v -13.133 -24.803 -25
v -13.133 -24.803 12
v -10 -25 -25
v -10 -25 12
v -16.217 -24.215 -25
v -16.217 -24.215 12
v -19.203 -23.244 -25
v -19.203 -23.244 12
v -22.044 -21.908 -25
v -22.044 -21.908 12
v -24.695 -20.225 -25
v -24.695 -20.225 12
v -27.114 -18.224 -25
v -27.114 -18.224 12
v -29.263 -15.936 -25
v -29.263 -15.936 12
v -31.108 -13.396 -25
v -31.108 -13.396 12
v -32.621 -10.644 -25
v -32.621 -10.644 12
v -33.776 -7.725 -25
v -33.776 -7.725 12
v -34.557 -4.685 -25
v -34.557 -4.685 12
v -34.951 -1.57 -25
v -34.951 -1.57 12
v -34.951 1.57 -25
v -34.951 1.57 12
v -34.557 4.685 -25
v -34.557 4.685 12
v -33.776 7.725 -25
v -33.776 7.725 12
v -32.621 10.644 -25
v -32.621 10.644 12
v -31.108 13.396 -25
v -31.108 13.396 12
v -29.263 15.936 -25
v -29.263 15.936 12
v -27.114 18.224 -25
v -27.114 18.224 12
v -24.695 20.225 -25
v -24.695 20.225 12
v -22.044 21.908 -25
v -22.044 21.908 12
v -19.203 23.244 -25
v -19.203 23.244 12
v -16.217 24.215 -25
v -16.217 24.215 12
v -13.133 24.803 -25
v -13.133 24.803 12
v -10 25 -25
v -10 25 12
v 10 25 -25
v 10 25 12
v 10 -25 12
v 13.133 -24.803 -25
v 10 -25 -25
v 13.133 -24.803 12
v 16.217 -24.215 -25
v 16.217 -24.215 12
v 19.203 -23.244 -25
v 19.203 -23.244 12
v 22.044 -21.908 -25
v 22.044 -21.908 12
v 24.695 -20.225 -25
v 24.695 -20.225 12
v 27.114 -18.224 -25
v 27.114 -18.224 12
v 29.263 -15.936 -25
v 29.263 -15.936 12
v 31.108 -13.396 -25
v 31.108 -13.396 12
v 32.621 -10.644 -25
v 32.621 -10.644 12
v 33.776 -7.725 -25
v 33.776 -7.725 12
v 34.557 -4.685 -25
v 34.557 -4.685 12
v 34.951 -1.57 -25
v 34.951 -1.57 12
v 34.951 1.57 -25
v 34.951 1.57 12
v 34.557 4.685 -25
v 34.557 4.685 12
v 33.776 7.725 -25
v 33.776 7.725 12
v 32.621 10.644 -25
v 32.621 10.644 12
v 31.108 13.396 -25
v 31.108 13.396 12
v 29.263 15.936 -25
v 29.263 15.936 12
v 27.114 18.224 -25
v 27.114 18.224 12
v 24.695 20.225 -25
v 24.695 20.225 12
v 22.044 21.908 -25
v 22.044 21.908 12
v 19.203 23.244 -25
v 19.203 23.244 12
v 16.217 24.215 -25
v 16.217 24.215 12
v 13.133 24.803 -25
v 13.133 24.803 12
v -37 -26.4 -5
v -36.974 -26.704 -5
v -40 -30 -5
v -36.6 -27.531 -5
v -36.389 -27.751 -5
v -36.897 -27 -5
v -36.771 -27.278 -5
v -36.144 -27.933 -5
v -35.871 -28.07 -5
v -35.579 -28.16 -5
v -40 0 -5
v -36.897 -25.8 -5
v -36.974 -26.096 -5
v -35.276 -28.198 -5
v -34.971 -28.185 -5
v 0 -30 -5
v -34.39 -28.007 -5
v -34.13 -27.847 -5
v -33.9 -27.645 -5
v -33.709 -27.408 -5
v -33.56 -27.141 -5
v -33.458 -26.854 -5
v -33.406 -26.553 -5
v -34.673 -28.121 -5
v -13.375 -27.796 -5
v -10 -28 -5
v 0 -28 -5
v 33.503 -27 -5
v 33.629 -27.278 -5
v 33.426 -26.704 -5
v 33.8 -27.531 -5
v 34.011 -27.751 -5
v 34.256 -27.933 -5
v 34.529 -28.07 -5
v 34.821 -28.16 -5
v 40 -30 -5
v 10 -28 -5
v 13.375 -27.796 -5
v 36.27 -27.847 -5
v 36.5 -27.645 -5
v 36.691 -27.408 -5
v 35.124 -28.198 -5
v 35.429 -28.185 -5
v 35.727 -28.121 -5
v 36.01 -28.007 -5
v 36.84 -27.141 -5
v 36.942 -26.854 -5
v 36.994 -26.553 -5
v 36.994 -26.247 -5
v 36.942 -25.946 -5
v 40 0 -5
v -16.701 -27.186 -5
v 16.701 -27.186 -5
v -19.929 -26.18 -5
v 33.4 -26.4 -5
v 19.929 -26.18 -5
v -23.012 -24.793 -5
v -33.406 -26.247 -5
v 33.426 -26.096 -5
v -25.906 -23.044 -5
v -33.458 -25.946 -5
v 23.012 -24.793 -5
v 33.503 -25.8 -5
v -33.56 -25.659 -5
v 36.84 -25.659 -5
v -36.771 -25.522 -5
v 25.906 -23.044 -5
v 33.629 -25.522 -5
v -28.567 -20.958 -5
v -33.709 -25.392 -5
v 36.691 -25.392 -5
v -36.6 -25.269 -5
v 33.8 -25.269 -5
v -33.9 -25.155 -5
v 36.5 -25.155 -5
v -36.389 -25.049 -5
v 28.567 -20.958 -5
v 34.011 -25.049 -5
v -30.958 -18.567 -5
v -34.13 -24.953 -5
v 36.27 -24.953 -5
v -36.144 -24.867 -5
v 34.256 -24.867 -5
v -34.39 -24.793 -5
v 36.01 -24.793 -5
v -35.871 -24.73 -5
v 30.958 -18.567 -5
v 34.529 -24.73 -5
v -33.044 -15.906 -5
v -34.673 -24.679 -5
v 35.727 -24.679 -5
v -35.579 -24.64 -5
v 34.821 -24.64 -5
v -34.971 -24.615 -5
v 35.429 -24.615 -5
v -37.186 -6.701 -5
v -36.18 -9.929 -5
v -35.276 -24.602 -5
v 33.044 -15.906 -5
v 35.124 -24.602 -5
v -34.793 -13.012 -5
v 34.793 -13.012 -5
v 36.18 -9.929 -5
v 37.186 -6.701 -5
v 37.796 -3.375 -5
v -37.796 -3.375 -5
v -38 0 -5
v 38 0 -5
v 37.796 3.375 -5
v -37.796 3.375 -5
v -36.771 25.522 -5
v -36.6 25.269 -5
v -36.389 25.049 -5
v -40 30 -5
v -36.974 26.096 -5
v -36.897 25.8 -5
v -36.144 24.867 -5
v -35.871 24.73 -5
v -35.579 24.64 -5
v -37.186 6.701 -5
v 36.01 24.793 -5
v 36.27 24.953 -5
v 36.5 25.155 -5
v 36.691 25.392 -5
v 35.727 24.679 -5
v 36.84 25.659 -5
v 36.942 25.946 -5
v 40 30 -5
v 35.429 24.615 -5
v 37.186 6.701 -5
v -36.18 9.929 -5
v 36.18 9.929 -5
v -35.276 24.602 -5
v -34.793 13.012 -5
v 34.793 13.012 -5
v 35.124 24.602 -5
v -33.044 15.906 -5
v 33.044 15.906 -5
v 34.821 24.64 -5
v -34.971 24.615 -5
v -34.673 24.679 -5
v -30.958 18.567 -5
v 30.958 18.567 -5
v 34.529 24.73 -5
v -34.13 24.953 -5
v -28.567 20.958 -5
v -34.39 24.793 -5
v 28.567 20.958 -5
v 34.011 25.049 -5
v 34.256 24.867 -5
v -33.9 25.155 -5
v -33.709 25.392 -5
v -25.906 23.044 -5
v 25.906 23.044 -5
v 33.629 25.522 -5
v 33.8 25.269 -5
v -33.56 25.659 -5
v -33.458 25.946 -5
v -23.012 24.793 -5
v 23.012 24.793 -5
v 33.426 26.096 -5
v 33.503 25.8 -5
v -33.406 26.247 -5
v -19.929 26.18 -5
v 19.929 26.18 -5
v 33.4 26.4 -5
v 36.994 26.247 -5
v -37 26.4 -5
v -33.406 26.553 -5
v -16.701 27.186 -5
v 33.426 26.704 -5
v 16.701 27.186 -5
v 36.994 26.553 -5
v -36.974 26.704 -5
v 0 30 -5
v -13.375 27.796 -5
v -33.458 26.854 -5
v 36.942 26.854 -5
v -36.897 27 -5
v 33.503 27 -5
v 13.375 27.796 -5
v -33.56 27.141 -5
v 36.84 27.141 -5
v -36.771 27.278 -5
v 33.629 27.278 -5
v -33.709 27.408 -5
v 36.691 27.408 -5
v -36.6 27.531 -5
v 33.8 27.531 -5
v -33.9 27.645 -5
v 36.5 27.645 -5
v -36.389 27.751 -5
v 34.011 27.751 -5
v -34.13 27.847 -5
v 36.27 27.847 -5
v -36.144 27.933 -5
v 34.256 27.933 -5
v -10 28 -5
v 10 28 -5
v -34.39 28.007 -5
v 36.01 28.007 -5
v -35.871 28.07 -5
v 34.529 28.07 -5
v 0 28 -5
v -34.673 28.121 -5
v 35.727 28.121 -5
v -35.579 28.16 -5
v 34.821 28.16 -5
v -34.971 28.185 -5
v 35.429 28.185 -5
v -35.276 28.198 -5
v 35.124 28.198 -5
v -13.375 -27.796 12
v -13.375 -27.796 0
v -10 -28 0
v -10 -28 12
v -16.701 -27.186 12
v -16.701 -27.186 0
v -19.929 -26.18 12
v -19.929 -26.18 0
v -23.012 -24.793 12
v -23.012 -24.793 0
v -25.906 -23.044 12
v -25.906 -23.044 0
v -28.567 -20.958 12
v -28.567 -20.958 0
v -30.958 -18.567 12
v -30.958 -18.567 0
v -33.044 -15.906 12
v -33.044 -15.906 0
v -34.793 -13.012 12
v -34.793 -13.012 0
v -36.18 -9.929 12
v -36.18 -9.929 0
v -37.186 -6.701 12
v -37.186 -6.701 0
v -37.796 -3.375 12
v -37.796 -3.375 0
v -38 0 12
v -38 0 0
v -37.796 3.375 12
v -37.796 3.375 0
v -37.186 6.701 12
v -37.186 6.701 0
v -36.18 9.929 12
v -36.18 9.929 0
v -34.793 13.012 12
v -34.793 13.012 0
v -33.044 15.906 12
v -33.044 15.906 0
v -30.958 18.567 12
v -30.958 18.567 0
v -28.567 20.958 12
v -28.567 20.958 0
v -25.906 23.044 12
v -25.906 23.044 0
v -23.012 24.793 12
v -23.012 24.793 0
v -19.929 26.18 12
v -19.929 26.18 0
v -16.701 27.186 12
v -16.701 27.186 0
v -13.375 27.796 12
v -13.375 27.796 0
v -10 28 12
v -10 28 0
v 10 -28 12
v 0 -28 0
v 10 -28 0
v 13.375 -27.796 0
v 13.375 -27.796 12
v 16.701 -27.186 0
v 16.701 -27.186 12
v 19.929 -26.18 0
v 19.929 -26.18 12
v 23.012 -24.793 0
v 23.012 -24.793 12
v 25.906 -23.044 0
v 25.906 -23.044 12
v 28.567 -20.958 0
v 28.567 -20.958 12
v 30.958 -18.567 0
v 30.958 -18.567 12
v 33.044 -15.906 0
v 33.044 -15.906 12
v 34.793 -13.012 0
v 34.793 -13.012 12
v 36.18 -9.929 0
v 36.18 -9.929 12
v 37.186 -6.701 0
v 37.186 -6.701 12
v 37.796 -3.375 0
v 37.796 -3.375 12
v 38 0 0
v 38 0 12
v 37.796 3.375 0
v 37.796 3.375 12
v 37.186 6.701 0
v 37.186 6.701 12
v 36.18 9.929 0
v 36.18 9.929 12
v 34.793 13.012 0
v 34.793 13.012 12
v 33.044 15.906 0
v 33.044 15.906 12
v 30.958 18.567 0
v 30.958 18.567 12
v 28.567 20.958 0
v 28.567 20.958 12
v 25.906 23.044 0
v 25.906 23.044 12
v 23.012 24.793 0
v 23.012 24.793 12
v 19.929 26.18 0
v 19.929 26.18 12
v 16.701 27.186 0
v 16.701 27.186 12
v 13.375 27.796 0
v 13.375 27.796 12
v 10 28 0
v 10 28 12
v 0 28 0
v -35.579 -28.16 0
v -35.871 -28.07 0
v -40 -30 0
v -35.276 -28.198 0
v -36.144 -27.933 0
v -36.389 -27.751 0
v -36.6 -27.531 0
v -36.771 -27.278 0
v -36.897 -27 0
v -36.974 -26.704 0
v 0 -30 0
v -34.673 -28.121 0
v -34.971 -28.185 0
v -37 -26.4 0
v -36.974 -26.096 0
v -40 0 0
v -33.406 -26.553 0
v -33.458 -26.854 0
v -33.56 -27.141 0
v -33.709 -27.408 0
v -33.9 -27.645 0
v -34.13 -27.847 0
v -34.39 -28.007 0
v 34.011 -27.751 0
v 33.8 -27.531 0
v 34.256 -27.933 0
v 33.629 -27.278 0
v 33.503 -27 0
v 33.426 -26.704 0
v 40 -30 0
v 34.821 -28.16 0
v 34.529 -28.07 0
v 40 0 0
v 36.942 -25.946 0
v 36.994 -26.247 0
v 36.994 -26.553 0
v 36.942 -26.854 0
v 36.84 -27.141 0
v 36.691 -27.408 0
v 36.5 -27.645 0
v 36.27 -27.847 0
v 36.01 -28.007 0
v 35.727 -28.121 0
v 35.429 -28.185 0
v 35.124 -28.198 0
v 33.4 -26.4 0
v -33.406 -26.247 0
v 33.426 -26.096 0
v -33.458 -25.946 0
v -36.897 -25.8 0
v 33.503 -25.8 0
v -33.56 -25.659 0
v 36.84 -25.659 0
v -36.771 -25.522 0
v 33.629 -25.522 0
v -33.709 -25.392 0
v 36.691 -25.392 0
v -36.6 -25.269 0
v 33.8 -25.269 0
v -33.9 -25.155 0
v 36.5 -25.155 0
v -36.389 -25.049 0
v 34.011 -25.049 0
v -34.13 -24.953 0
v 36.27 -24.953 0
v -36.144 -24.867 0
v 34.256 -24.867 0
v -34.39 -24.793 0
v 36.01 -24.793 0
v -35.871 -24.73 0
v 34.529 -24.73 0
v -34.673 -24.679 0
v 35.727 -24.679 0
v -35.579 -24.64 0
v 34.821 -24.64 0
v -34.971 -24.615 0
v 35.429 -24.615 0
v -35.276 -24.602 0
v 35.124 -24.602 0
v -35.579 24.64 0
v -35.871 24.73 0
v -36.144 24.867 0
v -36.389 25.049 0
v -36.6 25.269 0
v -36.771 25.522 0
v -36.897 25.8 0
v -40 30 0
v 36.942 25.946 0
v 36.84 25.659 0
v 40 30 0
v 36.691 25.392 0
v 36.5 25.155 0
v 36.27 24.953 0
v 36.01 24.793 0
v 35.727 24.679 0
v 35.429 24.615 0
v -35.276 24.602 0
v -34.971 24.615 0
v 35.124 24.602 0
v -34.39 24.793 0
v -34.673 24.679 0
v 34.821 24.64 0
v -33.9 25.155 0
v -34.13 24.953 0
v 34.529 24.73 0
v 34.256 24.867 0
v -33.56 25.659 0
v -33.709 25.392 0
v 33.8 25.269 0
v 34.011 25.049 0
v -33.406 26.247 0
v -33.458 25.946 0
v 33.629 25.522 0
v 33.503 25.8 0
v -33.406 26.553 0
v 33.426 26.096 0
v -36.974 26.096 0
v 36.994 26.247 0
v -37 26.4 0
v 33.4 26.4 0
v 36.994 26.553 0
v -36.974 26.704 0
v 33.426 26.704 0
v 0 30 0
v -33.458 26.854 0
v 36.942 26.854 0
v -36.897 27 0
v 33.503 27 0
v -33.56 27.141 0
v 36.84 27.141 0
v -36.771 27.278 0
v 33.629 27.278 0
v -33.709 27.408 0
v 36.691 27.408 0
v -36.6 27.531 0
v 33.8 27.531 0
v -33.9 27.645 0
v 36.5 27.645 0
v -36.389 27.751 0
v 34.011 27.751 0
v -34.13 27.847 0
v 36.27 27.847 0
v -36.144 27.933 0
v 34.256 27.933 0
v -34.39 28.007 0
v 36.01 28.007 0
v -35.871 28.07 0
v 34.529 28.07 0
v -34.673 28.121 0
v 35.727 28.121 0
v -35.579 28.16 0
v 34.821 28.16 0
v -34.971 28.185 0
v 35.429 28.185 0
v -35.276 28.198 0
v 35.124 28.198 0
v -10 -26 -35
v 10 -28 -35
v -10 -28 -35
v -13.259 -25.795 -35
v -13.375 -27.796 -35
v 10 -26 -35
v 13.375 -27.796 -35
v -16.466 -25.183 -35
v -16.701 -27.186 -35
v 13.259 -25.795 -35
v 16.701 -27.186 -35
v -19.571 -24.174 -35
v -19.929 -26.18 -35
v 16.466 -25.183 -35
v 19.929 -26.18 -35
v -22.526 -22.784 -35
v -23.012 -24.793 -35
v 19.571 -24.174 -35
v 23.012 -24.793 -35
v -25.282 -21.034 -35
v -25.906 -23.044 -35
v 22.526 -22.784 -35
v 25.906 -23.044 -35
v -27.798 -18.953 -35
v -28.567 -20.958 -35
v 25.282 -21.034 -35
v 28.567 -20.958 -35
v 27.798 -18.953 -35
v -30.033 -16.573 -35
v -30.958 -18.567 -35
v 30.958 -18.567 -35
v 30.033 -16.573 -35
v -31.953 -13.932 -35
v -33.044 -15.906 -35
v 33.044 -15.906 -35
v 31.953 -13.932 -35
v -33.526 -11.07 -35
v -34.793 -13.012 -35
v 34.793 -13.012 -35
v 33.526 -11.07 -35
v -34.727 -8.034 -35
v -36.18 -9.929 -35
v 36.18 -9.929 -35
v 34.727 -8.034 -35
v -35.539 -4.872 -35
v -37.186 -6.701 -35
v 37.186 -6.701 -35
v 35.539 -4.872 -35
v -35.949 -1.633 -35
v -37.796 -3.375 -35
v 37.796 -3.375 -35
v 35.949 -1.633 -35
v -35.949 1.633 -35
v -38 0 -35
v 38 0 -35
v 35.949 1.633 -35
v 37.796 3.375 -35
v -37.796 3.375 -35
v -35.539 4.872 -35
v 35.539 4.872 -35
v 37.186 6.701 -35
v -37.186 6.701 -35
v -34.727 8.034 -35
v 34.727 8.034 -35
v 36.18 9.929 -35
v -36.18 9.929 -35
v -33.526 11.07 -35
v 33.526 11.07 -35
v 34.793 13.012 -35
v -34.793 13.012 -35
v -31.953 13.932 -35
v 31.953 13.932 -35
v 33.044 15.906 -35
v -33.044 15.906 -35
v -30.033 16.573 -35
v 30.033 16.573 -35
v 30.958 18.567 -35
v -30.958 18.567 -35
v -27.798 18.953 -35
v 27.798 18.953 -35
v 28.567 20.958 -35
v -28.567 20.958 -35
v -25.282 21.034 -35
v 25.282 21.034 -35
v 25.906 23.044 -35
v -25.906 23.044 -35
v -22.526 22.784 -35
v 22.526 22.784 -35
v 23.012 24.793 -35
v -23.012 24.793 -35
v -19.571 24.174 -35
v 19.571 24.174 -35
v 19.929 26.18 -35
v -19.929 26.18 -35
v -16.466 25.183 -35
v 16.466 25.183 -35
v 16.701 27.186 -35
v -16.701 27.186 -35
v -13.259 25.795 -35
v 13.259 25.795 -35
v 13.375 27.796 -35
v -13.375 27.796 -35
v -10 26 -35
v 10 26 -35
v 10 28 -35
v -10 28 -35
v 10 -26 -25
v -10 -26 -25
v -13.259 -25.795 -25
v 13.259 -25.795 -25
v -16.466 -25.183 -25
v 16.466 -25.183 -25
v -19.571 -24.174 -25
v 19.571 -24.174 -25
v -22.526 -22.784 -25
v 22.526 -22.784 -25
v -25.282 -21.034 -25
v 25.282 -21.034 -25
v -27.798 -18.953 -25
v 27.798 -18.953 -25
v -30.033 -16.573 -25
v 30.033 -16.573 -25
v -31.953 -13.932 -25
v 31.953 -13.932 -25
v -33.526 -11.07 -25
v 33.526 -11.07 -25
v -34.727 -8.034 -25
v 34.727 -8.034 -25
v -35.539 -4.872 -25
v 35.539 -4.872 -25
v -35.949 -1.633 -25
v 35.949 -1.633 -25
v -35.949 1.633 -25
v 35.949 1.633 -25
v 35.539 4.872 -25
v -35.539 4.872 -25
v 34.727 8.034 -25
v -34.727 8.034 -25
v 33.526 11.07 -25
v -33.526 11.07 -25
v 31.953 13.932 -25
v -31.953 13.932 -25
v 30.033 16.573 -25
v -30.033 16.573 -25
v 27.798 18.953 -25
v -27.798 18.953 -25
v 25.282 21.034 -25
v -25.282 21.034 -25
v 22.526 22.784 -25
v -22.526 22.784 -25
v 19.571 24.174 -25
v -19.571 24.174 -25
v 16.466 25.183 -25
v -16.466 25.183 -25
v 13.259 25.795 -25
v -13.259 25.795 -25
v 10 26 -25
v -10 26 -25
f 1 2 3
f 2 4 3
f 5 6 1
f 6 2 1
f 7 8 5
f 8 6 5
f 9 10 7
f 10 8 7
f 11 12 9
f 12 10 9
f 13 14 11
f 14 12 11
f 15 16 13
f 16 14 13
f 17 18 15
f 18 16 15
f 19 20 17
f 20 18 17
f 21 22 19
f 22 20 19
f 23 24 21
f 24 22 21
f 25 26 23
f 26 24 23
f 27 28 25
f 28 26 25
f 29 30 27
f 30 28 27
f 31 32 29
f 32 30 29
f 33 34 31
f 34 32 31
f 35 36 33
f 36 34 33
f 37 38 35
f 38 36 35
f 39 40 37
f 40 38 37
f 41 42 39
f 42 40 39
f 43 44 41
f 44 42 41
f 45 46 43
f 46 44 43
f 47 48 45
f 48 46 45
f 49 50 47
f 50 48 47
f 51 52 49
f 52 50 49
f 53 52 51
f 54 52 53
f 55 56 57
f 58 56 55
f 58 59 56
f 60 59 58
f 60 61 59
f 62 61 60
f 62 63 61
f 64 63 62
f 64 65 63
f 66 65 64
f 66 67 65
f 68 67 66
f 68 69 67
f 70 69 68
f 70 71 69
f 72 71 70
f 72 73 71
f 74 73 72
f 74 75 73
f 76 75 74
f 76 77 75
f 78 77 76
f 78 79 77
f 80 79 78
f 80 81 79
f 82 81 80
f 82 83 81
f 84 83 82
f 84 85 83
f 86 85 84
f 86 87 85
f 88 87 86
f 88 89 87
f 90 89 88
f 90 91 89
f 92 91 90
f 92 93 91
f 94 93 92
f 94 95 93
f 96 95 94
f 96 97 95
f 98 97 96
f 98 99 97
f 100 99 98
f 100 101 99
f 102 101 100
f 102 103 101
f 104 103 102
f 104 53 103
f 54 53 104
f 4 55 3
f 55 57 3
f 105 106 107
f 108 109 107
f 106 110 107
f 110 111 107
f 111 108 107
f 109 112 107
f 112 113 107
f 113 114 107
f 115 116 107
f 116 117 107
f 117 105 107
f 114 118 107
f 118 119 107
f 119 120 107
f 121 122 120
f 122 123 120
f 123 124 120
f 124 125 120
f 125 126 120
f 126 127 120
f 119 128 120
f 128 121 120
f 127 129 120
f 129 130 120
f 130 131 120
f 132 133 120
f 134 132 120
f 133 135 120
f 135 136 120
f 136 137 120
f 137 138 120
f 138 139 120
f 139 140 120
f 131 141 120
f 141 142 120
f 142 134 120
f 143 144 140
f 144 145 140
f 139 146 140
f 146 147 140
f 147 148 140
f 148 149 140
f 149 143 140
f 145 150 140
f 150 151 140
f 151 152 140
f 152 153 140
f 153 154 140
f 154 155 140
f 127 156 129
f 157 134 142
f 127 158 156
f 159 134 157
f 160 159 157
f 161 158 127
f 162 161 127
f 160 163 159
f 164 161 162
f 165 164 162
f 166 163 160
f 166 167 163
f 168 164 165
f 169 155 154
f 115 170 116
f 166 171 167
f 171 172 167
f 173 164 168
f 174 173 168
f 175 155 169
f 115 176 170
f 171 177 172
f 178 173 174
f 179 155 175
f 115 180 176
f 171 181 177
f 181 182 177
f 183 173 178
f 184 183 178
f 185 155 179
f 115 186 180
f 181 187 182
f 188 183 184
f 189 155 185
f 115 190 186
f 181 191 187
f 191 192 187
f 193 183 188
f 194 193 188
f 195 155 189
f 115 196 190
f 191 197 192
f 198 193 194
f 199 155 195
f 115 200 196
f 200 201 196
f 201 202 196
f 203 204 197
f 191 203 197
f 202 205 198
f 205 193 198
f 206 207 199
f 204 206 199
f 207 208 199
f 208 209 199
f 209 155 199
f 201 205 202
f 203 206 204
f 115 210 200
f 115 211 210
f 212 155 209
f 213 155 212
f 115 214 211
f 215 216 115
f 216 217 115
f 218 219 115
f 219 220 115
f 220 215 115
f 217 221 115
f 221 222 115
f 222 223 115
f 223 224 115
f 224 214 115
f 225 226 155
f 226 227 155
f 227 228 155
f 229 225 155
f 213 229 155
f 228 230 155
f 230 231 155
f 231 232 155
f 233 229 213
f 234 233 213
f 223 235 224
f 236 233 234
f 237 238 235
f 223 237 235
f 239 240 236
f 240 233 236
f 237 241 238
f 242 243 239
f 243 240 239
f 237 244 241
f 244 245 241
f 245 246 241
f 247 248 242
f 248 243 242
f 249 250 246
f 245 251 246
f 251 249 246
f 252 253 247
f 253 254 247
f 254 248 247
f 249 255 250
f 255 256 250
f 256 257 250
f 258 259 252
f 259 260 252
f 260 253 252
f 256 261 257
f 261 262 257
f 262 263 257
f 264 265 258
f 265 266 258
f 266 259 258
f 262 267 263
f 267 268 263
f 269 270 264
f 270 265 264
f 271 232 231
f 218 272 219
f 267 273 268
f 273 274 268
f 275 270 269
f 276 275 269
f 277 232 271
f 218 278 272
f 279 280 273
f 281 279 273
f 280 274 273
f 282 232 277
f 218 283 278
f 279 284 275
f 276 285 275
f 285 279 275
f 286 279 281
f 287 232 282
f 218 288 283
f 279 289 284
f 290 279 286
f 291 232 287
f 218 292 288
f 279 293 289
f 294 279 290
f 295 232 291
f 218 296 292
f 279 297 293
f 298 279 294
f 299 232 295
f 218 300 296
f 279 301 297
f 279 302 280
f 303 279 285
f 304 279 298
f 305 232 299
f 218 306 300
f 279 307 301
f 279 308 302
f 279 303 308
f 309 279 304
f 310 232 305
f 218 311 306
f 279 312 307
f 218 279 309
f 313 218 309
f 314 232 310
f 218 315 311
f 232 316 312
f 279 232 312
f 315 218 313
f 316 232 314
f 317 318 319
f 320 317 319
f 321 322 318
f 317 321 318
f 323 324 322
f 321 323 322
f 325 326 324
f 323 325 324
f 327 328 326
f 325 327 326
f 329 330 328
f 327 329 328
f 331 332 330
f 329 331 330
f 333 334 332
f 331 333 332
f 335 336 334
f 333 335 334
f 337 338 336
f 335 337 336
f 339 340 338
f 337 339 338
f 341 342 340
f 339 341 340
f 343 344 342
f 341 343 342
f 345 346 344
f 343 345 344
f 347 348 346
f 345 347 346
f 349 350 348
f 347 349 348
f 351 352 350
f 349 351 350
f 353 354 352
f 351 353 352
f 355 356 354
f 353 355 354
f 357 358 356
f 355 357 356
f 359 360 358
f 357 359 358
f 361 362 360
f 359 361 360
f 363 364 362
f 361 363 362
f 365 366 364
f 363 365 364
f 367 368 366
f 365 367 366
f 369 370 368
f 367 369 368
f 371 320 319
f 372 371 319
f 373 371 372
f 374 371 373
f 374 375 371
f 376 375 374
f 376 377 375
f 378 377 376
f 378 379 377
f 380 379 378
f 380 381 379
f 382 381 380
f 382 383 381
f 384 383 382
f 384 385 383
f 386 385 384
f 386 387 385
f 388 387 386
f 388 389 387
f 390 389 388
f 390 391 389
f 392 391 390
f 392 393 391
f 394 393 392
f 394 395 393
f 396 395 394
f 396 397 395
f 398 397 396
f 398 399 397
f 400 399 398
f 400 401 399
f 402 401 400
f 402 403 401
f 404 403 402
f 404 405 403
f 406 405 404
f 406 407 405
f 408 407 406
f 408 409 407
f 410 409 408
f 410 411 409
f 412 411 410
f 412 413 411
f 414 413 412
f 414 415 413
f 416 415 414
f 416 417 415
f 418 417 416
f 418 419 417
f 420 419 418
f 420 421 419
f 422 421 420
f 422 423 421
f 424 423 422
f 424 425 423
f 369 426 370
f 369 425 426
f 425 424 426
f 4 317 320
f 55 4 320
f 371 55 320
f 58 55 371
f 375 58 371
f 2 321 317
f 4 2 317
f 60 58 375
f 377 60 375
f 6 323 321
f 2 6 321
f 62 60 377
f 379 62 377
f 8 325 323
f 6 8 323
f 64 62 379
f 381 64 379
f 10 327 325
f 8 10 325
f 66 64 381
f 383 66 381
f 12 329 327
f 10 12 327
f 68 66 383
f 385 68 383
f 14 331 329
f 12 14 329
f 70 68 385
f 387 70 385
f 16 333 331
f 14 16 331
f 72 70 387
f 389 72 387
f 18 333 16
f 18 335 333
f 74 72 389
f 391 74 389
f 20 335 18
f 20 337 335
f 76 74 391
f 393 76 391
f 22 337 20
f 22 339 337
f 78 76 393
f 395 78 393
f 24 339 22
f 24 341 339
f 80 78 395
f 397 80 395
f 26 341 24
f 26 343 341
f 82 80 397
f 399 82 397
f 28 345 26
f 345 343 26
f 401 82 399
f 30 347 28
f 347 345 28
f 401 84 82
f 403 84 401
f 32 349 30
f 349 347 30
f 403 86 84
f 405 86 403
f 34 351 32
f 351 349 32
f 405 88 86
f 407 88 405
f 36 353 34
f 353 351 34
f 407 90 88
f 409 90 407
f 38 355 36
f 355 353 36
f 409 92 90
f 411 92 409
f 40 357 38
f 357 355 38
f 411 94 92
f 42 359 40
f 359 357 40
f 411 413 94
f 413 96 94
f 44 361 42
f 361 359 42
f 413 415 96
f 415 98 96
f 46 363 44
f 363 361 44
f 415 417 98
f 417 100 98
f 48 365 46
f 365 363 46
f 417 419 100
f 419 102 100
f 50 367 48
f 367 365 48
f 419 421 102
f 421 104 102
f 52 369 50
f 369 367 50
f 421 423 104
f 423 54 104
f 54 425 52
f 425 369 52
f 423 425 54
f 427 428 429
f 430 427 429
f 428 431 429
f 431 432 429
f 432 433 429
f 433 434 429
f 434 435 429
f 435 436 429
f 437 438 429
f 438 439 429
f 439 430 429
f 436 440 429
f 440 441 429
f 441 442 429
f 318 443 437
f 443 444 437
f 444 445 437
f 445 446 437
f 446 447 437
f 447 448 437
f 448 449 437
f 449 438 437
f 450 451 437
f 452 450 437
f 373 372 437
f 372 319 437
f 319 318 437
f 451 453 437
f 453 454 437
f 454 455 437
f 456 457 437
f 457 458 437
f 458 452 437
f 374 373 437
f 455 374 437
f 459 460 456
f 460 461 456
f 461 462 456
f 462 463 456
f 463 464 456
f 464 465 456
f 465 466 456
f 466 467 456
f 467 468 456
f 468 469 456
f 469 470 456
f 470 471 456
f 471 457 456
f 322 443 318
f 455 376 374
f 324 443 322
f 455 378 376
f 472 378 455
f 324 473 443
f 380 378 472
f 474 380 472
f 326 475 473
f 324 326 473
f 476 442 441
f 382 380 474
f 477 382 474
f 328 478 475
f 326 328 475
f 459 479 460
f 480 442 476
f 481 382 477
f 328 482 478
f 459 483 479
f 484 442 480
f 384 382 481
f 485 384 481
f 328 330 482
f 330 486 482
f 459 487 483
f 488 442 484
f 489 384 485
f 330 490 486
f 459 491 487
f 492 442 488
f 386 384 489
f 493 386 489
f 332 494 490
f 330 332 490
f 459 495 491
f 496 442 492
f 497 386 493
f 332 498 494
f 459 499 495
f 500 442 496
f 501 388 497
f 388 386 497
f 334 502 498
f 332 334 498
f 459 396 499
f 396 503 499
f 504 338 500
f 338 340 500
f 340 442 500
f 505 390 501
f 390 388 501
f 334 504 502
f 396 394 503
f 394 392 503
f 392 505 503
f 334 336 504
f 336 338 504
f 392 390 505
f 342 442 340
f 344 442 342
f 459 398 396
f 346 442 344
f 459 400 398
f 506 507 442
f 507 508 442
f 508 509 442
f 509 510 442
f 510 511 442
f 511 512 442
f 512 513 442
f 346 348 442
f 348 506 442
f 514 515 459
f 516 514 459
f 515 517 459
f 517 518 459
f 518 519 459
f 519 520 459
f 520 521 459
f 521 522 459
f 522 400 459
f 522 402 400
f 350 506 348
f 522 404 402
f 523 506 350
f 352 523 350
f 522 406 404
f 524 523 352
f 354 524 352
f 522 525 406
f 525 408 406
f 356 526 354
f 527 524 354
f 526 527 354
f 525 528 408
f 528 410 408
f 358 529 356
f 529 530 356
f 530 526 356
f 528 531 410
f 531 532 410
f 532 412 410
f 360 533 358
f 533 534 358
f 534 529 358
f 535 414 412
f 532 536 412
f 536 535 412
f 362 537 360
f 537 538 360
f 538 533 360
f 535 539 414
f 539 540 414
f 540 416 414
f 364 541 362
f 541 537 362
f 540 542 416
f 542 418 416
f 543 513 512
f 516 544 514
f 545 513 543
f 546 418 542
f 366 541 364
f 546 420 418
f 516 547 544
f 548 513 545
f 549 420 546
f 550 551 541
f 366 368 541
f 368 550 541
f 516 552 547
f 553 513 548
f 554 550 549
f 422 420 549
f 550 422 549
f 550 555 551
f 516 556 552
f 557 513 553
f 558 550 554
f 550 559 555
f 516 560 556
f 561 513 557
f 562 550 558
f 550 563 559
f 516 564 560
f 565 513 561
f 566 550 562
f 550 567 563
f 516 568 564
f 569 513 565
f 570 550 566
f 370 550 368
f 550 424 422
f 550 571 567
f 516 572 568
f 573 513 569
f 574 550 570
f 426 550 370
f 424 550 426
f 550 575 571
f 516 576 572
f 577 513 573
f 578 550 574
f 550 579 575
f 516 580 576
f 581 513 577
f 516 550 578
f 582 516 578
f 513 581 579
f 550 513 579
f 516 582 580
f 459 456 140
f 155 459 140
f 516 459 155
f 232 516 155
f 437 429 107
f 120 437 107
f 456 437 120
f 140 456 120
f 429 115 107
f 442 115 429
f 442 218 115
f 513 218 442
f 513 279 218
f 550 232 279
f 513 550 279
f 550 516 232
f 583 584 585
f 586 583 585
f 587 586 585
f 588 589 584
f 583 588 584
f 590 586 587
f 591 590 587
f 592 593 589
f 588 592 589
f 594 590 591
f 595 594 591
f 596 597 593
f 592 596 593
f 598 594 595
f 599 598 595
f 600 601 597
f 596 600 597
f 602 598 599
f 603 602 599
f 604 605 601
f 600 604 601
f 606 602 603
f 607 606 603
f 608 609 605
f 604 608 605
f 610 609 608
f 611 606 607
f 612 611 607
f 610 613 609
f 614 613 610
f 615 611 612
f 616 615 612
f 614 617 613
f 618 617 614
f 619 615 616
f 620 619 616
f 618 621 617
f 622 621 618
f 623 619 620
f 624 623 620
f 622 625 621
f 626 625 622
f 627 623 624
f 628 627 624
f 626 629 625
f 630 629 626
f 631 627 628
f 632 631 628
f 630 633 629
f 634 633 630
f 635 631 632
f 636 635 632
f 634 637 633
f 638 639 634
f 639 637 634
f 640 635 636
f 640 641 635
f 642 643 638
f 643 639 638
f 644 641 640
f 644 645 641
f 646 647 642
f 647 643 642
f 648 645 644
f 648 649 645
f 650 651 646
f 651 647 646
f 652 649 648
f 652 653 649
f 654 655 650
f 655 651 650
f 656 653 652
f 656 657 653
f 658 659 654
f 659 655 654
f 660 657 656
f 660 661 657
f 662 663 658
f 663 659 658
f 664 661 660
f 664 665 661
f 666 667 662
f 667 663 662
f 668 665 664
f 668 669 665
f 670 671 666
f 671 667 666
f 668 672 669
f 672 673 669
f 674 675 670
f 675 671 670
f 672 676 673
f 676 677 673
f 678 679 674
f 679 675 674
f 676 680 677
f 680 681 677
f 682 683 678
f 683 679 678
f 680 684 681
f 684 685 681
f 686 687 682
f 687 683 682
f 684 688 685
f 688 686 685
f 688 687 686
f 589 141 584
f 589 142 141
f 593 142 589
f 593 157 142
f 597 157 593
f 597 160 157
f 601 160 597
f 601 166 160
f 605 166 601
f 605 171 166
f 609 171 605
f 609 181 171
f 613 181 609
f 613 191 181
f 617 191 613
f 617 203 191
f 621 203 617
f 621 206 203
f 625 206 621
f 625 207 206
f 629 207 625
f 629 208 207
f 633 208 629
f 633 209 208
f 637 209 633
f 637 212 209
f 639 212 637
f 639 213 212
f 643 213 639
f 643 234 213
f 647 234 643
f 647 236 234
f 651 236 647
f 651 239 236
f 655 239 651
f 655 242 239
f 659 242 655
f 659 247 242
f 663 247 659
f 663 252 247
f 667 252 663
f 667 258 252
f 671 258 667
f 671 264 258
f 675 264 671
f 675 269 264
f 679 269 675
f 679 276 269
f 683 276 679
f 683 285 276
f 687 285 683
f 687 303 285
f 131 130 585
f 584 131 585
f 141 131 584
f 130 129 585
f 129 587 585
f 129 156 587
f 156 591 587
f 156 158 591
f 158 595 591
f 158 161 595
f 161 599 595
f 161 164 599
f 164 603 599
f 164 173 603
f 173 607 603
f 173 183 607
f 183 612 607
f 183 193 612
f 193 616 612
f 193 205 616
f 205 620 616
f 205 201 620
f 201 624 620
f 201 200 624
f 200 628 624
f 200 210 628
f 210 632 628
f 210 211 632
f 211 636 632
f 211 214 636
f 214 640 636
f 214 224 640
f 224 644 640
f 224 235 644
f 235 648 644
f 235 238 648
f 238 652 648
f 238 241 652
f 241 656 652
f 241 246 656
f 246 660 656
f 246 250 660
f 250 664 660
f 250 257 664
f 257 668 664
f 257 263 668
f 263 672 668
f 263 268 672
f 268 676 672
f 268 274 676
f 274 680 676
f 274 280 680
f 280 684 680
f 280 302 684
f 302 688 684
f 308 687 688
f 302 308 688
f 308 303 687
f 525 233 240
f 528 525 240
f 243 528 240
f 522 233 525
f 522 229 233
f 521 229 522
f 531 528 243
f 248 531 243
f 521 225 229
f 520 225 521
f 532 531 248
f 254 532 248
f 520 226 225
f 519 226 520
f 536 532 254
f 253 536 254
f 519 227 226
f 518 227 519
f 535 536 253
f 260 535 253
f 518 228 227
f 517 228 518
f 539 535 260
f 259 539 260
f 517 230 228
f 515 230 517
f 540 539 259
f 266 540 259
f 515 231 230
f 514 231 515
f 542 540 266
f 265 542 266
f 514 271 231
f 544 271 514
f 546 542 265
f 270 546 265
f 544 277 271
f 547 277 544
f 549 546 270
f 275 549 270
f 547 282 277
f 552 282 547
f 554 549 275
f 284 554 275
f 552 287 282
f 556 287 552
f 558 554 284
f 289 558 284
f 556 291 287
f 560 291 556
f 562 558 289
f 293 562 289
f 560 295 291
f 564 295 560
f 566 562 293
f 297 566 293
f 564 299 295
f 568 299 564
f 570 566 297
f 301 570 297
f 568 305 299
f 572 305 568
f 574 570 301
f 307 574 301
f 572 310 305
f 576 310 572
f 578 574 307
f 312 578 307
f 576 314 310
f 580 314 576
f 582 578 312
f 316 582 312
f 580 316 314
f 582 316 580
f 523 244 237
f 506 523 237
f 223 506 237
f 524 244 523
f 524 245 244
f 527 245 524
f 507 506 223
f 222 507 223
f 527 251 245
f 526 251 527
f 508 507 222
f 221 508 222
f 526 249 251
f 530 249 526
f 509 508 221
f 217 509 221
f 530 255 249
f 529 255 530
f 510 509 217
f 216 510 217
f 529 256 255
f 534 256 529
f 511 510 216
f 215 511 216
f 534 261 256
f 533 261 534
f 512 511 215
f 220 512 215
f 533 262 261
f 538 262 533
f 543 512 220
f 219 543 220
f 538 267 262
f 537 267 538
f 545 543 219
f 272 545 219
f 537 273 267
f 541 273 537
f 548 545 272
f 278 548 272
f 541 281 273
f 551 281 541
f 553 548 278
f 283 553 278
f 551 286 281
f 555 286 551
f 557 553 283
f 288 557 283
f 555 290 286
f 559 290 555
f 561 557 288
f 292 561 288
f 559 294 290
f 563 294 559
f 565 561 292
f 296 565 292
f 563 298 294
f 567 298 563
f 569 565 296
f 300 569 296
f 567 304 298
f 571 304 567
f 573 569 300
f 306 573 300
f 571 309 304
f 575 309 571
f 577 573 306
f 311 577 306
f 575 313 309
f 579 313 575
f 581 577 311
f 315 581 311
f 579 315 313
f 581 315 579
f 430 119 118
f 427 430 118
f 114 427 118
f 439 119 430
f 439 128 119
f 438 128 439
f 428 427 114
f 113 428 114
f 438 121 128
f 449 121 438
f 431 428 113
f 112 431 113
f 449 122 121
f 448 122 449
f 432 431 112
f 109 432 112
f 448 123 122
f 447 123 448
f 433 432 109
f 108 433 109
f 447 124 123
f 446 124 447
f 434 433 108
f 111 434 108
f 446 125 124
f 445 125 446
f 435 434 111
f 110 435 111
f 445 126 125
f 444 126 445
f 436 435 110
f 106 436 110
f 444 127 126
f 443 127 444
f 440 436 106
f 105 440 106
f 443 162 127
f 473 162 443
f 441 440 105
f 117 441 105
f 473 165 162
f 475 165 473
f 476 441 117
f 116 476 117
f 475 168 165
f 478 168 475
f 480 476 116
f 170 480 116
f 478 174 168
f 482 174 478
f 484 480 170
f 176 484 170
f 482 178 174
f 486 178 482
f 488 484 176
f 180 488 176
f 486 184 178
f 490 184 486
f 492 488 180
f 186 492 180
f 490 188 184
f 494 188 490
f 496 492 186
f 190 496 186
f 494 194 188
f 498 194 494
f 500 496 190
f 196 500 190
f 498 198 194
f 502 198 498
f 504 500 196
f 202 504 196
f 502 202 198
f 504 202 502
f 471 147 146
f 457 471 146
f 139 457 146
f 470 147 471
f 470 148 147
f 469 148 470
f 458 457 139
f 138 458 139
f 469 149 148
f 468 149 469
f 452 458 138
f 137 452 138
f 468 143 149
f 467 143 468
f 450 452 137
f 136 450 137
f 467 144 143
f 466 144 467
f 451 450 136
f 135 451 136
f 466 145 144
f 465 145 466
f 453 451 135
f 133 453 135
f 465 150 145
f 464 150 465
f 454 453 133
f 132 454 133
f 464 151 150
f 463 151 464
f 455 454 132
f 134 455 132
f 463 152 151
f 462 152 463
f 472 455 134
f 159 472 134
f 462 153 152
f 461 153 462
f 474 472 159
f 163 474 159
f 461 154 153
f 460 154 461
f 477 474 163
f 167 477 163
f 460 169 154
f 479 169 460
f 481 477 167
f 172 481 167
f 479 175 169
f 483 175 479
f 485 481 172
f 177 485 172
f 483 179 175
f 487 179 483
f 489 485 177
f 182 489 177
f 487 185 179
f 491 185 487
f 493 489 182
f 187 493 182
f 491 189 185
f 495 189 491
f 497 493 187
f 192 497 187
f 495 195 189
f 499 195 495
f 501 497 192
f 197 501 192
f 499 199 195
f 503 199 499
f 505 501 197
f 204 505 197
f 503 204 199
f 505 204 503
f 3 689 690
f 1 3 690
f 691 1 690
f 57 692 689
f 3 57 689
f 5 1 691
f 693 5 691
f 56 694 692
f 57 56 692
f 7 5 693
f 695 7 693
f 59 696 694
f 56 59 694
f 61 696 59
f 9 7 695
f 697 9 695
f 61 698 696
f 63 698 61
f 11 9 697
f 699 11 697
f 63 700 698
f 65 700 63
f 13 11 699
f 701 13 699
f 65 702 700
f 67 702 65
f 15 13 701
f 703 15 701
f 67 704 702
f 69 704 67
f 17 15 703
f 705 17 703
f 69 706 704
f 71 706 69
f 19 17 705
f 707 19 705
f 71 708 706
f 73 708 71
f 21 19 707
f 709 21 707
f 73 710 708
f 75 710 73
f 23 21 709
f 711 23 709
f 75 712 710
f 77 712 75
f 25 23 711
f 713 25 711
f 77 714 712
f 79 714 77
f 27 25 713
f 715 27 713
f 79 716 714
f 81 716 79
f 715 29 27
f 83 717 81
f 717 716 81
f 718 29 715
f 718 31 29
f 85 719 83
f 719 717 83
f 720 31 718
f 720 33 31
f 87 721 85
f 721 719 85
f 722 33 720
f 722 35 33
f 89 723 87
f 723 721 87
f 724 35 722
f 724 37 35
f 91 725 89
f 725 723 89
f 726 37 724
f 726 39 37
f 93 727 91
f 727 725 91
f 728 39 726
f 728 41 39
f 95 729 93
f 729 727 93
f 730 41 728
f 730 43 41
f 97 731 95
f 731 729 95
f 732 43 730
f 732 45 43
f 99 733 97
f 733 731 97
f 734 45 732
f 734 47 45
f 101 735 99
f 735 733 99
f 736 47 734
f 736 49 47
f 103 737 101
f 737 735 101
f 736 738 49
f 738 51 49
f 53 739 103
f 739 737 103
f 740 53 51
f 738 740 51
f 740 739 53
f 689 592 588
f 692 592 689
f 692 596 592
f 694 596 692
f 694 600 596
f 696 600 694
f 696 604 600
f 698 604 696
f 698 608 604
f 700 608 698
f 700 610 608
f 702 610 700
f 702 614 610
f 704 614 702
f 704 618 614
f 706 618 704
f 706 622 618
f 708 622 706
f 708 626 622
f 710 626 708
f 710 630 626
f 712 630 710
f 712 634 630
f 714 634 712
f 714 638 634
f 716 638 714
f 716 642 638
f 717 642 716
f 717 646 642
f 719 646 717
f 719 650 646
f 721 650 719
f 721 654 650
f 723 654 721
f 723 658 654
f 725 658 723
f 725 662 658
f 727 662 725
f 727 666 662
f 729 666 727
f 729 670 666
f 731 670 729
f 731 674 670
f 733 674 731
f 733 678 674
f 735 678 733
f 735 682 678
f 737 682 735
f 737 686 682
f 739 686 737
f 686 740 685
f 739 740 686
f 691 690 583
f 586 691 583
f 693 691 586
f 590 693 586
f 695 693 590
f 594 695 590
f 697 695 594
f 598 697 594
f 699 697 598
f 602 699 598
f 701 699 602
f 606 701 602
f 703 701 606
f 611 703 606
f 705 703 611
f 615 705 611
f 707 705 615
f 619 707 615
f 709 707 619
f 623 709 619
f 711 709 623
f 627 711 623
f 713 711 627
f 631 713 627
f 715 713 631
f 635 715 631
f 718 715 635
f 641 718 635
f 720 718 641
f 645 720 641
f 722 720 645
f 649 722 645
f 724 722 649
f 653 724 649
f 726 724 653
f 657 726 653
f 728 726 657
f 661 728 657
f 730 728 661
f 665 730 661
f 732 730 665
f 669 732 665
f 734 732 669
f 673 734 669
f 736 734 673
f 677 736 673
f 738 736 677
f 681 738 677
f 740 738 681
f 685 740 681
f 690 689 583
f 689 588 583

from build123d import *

# Parameters (mm, degrees)
BOSS_EXTRUDE3_DEPTH = 12
CUT_EXTRUDE1_DEPTH  = 12
SKETCH7_W           = 80
SKETCH7_H           = 60
BOSS_EXTRUDE4_DEPTH = 5
BOSS_EXTRUDE5_DEPTH = 30
SKETCH10_R          = 1.8
CUT_EXTRUDE2_DEPTH  = 30
CUT_EXTRUDE3_DEPTH  = 10


with BuildPart() as part:
    # Sketch5 → Boss-Extrude3 (new body)
    with BuildSketch(Plane.XY):
        with BuildLine():
            Line((10, -28), (-10, -28))
            ThreePointArc((-10, -28), (-38, 0), (-10, 28))
            Line((-10, 28), (10, 28))
            ThreePointArc((10, 28), (38, 0), (10, -28))
        make_face()
    extrude(amount=BOSS_EXTRUDE3_DEPTH)

    # Sketch6 → Cut-Extrude1 (cut)
    with BuildSketch(Plane.XY.offset(12)):
        with BuildLine():
            Line((10, -25), (-10, -25))
            ThreePointArc((-10, -25), (-35, 0), (-10, 25))
            Line((-10, 25), (10, 25))
            ThreePointArc((10, 25), (35, 0), (10, -25))
        make_face()
    extrude(amount=-CUT_EXTRUDE1_DEPTH, mode=Mode.SUBTRACT)

    # Sketch7 → Boss-Extrude4 (add)
    with BuildSketch(Plane(origin=(0, 0, 0), x_dir=(-1, 0, 0), z_dir=(0, 0, -1))):
        Rectangle(SKETCH7_W, SKETCH7_H)
        with BuildLine():
            Line((10, -25), (-10, -25))
            ThreePointArc((-10, -25), (-35, 0), (-10, 25))
            Line((-10, 25), (10, 25))
            ThreePointArc((10, 25), (35, 0), (10, -25))
        make_face(mode=Mode.SUBTRACT)
    extrude(amount=BOSS_EXTRUDE4_DEPTH)

    # Sketch9 → Boss-Extrude5 (add)
    with BuildSketch(Plane(origin=(0, 0, -5), x_dir=(-1, 0, 0), z_dir=(0, 0, -1))):
        with BuildLine():
            Line((10, -28), (-10, -28))
            ThreePointArc((-10, -28), (-38, 0), (-10, 28))
            Line((-10, 28), (10, 28))
            ThreePointArc((10, 28), (38, 0), (10, -28))
        make_face()
        with BuildLine():
            Line((10, -25), (-10, -25))
            ThreePointArc((-10, -25), (-35, 0), (-10, 25))
            Line((-10, 25), (10, 25))
            ThreePointArc((10, 25), (35, 0), (10, -25))
        make_face(mode=Mode.SUBTRACT)
    extrude(amount=BOSS_EXTRUDE5_DEPTH)

    # Sketch10 → Cut-Extrude2 (cut)
    with BuildSketch(Plane(origin=(0, 0, -5), x_dir=(-1, 0, 0), z_dir=(0, 0, -1))):
        with Locations((-35.2, 26.4)):
            Circle(SKETCH10_R)
        with Locations((35.2, 26.4)):
            Circle(SKETCH10_R)
        with Locations((35.2, -26.4)):
            Circle(SKETCH10_R)
        with Locations((-35.2, -26.4)):
            Circle(SKETCH10_R)
    extrude(amount=-CUT_EXTRUDE2_DEPTH, mode=Mode.SUBTRACT)

    # Sketch11 → Cut-Extrude3 (cut)
    with BuildSketch(Plane(origin=(0, 0, -35), x_dir=(-1, 0, 0), z_dir=(0, 0, -1))):
        with BuildLine():
            Line((10, -26), (-10, -26))
            ThreePointArc((-10, -26), (-36, 0), (-10, 26))
            Line((-10, 26), (10, 26))
            ThreePointArc((10, 26), (36, 0), (10, -26))
        make_face()
    extrude(amount=-CUT_EXTRUDE3_DEPTH, mode=Mode.SUBTRACT)


solid = part.part
